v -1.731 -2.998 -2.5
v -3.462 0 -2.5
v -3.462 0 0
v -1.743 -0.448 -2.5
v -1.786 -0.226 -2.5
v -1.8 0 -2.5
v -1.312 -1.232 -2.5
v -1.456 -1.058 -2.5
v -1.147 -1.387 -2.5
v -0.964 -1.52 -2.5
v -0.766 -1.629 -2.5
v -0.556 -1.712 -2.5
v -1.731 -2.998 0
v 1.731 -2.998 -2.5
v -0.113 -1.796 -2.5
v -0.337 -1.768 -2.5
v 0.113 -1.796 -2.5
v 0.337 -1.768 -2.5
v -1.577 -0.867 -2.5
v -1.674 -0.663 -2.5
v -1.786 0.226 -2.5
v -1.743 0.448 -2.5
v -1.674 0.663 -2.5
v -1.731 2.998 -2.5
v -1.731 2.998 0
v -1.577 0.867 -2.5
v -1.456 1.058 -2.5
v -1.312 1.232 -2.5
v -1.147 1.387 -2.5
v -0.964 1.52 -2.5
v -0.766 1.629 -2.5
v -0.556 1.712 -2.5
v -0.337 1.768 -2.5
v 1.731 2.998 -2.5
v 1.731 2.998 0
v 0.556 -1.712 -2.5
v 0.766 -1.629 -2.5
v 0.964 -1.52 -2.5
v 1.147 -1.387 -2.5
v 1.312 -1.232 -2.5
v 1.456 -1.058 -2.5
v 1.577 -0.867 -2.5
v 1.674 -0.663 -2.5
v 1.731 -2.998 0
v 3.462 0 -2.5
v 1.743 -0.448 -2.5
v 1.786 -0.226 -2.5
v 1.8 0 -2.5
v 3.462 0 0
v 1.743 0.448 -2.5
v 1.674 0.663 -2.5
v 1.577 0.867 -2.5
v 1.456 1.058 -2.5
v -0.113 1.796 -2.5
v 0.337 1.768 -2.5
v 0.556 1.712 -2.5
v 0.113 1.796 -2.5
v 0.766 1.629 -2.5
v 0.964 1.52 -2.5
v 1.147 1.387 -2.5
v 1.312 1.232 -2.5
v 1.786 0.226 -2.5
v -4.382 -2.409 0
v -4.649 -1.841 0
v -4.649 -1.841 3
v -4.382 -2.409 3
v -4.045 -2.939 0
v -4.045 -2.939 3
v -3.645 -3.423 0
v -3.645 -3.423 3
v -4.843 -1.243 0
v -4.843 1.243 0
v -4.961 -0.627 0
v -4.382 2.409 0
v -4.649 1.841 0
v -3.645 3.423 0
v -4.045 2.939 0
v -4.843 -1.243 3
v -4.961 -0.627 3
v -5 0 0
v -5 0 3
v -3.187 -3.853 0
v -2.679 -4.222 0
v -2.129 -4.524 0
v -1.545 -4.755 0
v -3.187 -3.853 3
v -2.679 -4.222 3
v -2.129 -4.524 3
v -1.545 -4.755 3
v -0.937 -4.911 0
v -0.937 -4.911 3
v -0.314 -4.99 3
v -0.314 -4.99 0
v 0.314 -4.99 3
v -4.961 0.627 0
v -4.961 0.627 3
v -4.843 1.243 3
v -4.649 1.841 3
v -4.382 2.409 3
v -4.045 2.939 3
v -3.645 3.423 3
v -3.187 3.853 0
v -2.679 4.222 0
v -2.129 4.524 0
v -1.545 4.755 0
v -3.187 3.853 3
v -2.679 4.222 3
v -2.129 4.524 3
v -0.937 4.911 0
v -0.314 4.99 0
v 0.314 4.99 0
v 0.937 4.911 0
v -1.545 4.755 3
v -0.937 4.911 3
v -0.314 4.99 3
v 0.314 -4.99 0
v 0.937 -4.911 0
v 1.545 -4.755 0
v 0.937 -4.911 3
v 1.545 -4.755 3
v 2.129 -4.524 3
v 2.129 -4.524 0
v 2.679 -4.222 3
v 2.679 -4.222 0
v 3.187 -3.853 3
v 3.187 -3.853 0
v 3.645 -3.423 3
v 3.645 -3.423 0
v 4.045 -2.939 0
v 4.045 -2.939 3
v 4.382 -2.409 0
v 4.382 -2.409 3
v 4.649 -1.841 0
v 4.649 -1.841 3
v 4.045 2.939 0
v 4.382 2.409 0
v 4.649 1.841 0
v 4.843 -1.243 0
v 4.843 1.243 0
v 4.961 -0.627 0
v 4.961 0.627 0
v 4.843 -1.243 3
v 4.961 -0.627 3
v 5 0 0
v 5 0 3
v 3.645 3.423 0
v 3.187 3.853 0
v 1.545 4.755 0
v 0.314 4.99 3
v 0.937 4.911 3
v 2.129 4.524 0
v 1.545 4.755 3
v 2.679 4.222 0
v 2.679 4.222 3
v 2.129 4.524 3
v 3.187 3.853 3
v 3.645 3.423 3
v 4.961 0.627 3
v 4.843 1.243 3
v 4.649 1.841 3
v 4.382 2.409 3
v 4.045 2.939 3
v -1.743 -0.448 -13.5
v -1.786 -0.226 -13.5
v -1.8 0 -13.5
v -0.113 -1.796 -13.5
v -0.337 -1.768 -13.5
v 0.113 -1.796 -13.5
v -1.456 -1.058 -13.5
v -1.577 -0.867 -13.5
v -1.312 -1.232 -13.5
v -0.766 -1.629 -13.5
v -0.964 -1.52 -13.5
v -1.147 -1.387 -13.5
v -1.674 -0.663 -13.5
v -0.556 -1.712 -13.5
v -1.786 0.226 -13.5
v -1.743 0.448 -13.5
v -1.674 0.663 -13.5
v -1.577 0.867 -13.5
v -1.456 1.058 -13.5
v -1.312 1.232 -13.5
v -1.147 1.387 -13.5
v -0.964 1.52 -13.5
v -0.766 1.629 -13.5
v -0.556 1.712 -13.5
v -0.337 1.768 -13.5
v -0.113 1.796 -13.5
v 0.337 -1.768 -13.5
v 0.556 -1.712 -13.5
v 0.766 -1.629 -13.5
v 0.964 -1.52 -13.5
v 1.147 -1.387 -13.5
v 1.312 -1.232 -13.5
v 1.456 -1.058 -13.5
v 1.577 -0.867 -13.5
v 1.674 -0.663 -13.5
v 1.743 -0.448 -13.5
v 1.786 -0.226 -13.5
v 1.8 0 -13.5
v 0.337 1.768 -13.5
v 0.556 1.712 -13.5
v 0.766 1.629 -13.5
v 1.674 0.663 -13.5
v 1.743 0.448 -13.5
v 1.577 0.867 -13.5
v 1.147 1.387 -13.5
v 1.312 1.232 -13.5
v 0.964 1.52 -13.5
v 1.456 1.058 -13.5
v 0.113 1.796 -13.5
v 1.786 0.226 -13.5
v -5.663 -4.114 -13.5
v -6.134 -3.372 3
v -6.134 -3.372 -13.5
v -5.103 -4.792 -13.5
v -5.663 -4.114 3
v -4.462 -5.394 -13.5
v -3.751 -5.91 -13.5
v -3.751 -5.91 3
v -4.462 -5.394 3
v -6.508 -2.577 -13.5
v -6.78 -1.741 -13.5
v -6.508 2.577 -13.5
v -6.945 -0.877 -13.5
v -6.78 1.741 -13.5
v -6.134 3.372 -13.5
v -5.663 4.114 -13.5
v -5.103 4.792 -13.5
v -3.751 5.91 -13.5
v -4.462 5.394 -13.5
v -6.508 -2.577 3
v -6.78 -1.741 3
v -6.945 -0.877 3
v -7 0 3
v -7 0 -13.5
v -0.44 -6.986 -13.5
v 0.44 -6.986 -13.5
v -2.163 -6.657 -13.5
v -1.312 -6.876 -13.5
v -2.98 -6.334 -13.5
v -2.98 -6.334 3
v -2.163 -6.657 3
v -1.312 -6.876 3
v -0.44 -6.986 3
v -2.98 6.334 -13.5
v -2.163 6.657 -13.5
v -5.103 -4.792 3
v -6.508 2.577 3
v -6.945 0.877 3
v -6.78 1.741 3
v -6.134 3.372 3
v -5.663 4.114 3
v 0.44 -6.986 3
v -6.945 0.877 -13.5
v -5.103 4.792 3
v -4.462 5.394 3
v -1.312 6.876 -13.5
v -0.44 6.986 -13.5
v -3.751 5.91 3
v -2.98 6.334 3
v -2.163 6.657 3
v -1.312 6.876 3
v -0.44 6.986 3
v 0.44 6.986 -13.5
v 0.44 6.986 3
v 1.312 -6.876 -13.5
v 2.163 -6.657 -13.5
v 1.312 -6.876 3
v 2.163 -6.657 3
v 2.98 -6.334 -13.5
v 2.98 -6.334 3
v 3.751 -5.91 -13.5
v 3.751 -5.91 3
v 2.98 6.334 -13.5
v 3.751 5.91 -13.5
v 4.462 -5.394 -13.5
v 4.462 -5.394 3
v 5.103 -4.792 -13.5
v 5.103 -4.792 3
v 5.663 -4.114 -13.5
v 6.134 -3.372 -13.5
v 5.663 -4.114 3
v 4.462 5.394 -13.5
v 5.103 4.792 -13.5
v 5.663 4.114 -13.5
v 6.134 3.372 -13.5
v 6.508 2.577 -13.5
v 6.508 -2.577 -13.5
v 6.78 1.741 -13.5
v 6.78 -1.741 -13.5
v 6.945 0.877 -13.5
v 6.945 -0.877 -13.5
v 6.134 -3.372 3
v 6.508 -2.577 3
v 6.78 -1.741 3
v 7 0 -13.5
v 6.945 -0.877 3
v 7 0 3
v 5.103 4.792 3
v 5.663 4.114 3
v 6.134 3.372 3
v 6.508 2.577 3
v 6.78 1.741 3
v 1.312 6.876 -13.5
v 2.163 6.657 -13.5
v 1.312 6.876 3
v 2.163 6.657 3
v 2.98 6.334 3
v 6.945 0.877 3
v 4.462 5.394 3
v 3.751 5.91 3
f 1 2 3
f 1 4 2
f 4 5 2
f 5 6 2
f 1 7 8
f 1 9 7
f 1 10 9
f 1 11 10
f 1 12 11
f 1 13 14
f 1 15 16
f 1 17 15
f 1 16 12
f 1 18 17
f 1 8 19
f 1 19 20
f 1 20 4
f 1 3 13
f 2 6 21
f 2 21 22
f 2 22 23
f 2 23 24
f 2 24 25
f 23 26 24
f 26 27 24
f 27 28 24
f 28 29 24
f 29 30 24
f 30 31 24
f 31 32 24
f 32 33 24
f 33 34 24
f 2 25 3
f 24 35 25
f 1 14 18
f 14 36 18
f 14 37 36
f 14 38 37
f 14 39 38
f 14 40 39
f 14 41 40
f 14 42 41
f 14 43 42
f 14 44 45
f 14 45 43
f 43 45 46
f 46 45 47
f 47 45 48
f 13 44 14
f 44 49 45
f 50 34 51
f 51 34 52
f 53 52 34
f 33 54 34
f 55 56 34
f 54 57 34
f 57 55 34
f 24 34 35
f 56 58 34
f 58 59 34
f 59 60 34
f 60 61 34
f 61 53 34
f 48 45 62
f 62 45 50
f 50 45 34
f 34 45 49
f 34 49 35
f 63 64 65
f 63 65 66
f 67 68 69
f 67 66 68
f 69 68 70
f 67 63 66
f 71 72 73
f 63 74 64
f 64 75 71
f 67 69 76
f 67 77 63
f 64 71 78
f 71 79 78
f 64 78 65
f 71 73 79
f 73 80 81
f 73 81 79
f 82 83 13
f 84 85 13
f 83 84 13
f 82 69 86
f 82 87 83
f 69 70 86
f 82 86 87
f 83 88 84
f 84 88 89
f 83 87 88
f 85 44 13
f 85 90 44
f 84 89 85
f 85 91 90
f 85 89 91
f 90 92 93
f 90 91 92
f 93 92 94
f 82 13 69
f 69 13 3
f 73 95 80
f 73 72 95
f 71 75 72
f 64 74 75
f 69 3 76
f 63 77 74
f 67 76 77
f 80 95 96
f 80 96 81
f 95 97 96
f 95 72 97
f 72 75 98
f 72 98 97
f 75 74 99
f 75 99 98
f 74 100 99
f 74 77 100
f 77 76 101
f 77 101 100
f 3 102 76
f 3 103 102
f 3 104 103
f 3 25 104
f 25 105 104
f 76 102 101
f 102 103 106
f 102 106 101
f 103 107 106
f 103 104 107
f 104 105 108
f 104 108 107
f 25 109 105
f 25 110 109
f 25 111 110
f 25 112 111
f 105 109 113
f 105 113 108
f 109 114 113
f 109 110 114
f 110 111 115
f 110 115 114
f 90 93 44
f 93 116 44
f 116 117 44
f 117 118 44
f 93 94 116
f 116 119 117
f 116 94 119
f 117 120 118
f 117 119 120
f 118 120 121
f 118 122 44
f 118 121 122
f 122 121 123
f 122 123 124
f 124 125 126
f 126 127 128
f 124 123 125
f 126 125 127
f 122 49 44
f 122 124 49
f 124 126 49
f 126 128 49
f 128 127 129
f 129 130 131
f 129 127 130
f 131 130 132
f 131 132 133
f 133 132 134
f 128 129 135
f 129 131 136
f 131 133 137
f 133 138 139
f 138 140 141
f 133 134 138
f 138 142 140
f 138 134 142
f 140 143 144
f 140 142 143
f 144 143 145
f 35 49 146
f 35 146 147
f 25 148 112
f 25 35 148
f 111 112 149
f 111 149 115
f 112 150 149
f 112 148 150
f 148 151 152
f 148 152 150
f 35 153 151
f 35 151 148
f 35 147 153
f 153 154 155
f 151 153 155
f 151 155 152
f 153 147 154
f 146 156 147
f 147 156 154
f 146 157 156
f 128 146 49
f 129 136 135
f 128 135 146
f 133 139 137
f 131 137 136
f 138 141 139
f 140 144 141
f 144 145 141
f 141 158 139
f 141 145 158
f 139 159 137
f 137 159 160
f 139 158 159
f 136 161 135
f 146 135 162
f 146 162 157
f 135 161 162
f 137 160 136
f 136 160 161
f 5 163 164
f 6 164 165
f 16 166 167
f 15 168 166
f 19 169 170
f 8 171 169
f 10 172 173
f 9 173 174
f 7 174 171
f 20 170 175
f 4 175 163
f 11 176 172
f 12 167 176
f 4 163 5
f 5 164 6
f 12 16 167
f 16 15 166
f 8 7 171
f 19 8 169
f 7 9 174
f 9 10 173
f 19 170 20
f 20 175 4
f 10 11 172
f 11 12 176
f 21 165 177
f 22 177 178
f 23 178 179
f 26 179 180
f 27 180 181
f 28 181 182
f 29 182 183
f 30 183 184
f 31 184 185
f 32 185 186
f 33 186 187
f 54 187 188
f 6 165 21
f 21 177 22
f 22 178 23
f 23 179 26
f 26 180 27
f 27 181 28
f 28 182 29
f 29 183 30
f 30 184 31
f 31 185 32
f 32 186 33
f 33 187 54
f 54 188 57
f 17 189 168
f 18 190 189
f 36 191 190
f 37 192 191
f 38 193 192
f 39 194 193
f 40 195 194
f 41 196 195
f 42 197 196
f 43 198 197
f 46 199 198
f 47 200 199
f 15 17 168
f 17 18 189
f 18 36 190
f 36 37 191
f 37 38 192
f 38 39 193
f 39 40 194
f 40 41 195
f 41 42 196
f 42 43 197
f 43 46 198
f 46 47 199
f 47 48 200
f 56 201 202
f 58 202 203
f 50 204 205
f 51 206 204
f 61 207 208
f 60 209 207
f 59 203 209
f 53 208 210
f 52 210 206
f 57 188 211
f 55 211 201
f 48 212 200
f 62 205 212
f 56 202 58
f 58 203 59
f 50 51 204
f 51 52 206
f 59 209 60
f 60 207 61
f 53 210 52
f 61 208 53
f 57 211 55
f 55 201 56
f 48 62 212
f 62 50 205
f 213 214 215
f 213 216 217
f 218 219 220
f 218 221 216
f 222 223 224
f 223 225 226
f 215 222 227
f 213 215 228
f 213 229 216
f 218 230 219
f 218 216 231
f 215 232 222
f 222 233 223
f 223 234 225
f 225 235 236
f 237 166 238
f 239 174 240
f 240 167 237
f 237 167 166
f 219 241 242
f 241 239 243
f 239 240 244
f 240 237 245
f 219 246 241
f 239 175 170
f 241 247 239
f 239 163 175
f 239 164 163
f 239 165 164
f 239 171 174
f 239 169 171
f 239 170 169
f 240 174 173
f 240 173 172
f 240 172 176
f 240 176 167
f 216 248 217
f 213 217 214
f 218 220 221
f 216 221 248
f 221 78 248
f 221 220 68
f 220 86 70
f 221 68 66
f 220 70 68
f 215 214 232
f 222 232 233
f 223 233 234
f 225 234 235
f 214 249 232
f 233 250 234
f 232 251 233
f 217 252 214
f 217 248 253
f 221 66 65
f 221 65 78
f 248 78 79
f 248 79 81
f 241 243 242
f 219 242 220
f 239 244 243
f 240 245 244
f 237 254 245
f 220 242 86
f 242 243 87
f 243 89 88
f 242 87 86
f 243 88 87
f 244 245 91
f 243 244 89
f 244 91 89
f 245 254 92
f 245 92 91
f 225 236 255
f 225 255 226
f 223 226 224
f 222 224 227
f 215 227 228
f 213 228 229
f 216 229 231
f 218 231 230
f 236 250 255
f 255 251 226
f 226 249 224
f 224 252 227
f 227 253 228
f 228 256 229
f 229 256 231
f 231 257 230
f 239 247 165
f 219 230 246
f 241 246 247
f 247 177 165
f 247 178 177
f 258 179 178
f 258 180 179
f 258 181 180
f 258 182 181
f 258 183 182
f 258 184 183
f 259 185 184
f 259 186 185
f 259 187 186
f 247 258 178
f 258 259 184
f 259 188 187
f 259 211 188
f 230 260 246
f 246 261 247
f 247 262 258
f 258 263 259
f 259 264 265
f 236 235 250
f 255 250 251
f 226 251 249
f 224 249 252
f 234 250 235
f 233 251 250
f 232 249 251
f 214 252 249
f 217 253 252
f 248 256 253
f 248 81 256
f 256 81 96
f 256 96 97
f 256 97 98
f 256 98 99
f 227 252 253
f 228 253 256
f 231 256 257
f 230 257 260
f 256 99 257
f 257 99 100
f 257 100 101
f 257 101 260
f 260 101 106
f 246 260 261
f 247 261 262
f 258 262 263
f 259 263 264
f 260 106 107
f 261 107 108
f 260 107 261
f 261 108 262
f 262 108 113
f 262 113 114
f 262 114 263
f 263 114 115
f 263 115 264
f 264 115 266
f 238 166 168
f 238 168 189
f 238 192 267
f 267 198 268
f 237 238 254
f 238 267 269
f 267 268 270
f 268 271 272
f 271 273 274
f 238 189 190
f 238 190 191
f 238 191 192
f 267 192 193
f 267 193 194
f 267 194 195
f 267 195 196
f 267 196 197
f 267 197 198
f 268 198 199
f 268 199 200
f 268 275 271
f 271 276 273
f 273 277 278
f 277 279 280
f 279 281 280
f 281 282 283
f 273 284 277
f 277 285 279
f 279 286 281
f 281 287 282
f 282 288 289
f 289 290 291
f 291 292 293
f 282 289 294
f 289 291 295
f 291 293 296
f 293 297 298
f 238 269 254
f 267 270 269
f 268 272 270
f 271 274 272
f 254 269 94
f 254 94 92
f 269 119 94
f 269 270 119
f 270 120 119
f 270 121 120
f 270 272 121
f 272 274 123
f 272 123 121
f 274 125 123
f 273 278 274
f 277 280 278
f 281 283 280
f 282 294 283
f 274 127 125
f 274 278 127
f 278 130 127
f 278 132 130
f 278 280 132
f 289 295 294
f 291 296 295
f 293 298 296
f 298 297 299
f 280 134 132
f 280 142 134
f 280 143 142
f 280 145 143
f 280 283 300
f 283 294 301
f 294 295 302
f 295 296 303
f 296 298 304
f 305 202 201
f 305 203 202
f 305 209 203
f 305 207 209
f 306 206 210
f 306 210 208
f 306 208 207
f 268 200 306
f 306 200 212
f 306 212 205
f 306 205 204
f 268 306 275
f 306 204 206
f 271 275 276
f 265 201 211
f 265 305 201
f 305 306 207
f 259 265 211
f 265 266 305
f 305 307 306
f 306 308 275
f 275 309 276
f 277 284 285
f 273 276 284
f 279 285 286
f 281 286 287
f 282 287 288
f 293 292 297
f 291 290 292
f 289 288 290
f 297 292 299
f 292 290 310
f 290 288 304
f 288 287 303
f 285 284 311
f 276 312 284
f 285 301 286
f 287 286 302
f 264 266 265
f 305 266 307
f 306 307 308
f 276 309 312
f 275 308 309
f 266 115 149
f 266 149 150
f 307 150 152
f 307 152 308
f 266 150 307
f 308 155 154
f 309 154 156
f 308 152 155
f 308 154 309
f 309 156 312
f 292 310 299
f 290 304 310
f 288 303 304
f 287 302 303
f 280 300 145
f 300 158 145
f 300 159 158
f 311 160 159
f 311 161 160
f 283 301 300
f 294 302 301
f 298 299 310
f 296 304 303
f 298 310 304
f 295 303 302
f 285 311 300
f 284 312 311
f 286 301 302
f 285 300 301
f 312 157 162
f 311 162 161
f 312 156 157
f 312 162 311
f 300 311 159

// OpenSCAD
$fn = 50;


difference() {
	union() {
		translate(v = [0, 0, -13.5000000000]) {
			cylinder(h = 16.5000000000, r = 7.0000000000);
		}
	}
	union() {
		translate(v = [0, 0, 0]) {
			rotate(a = [0, 0, 0]) {
				difference() {
					union() {
						translate(v = [0, 0, -2.5000000000]) {
							linear_extrude(height = 2.5000000000) {
								polygon(points = [[3.4620000000, 0.0000000000], [1.7310000000, 2.9981799479], [-1.7310000000, 2.9981799479], [-3.4620000000, 0.0000000000], [-1.7310000000, -2.9981799479], [1.7310000000, -2.9981799479]]);
							}
						}
					}
					union();
				}
			}
		}
		#cylinder(h = 3, r = 5.0000000000);
		#translate(v = [0, 0, -100.0000000000]) {
			cylinder(h = 200, r = 1.8000000000);
		}
	}
}
